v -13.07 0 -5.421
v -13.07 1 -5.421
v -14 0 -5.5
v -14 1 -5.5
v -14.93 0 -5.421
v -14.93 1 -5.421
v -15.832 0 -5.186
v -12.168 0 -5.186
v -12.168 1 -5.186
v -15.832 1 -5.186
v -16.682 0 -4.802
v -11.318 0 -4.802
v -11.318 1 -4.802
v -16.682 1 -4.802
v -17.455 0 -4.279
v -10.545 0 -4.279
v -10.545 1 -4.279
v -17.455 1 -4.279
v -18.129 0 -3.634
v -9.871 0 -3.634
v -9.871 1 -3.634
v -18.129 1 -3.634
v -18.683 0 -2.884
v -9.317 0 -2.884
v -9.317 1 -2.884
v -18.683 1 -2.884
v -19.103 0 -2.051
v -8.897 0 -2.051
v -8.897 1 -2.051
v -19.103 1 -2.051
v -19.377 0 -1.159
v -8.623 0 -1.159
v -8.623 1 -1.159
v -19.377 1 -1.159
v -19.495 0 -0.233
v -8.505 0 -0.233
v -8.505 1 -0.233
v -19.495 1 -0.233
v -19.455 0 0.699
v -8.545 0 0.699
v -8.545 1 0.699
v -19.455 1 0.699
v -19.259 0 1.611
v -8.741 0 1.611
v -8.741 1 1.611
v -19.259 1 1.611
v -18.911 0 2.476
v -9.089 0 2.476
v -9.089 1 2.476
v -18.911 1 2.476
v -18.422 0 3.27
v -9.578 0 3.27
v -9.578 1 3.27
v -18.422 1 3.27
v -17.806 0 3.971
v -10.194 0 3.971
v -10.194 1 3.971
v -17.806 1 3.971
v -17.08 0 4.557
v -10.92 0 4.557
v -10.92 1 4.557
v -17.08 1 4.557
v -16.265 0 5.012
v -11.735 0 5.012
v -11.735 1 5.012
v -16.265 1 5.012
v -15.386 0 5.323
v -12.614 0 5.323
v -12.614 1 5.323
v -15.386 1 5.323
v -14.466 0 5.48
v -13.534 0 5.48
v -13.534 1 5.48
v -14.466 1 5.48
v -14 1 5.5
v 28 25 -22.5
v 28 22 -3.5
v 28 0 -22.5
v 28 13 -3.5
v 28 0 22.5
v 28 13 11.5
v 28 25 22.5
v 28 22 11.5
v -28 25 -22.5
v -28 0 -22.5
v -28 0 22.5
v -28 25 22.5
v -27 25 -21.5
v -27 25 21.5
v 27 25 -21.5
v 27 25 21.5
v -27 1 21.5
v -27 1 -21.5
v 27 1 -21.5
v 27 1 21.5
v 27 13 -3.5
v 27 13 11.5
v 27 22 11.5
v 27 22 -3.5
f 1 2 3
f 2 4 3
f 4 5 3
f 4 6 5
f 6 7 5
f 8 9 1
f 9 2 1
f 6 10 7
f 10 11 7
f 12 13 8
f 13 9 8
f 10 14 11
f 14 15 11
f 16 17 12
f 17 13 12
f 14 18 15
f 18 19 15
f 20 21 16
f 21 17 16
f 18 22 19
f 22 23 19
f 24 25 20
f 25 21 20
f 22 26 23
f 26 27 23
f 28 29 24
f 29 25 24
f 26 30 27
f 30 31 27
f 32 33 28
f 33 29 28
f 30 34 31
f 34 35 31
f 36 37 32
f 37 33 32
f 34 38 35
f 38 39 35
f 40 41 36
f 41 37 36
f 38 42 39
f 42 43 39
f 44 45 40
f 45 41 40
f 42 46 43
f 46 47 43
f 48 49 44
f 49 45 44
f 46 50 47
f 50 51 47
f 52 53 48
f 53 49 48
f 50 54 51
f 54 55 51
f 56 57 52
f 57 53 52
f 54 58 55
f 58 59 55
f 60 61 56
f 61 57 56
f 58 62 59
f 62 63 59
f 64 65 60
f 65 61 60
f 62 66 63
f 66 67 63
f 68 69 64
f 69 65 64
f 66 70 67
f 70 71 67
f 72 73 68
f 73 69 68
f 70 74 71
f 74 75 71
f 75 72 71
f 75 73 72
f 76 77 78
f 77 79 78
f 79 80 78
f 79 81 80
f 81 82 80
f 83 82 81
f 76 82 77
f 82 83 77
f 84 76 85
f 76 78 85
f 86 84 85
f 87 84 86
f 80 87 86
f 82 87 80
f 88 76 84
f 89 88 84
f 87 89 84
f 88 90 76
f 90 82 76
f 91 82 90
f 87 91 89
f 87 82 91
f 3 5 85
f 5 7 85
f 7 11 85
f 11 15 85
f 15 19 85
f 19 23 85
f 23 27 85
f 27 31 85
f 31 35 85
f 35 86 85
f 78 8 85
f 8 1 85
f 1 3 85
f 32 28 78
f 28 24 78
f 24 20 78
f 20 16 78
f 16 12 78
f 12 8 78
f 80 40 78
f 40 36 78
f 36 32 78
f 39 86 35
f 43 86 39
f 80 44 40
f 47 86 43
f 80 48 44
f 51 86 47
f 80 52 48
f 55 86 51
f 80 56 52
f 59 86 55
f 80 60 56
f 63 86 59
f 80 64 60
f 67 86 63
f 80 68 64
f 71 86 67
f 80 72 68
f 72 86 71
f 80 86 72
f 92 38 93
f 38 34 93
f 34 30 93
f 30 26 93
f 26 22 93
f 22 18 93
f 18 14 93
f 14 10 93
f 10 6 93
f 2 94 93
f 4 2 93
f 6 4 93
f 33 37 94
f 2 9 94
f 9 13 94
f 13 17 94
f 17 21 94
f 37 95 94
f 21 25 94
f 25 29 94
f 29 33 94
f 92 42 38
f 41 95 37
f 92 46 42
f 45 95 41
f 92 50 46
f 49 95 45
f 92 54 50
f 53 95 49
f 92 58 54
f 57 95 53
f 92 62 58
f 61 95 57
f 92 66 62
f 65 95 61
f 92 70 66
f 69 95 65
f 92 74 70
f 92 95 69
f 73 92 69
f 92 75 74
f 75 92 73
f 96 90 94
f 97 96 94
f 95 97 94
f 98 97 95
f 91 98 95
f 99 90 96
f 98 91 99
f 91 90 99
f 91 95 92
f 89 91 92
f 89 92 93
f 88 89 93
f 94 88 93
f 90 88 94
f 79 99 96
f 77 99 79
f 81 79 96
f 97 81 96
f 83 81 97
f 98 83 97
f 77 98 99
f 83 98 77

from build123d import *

# Parameters (mm, degrees)
SKETCH1_W           = 56
SKETCH1_H           = 45
BOSS_EXTRUDE1_DEPTH = 25
SKETCH2_R           = 5.5
CUT_EXTRUDE1_DEPTH  = 15
SKETCH3_W           = 54
SKETCH3_H           = 43
CUT_EXTRUDE2_DEPTH  = 24
SKETCH4_W           = 15
SKETCH4_H           = 9
CUT_EXTRUDE3_DEPTH  = 24


with BuildPart() as part:
    # Sketch1 → Boss-Extrude1 (new body)
    with BuildSketch(Plane(origin=(0, 0, 0), x_dir=(1, 0, 0), z_dir=(0, 1, 0))):
        Rectangle(SKETCH1_W, SKETCH1_H)
    extrude(amount=BOSS_EXTRUDE1_DEPTH)

    # Sketch2 → Cut-Extrude1 (cut)
    with BuildSketch(Plane.XZ):
        with Locations((-14, 0)):
            Circle(SKETCH2_R)
    extrude(amount=-CUT_EXTRUDE1_DEPTH, mode=Mode.SUBTRACT)

    # Sketch3 → Cut-Extrude2 (cut)
    with BuildSketch(Plane(origin=(0, 25, 0), x_dir=(1, 0, 0), z_dir=(0, 1, 0))):
        Rectangle(SKETCH3_W, SKETCH3_H)
    extrude(amount=-CUT_EXTRUDE2_DEPTH, mode=Mode.SUBTRACT)

    # Sketch4 → Cut-Extrude3 (cut)
    with BuildSketch(Plane(origin=(28, 0, 0), x_dir=(0, 0, -1), z_dir=(1, 0, 0))):
        with Locations((-4, 17.5)):
            Rectangle(SKETCH4_W, SKETCH4_H)
    extrude(amount=-CUT_EXTRUDE3_DEPTH, mode=Mode.SUBTRACT)


solid = part.part
